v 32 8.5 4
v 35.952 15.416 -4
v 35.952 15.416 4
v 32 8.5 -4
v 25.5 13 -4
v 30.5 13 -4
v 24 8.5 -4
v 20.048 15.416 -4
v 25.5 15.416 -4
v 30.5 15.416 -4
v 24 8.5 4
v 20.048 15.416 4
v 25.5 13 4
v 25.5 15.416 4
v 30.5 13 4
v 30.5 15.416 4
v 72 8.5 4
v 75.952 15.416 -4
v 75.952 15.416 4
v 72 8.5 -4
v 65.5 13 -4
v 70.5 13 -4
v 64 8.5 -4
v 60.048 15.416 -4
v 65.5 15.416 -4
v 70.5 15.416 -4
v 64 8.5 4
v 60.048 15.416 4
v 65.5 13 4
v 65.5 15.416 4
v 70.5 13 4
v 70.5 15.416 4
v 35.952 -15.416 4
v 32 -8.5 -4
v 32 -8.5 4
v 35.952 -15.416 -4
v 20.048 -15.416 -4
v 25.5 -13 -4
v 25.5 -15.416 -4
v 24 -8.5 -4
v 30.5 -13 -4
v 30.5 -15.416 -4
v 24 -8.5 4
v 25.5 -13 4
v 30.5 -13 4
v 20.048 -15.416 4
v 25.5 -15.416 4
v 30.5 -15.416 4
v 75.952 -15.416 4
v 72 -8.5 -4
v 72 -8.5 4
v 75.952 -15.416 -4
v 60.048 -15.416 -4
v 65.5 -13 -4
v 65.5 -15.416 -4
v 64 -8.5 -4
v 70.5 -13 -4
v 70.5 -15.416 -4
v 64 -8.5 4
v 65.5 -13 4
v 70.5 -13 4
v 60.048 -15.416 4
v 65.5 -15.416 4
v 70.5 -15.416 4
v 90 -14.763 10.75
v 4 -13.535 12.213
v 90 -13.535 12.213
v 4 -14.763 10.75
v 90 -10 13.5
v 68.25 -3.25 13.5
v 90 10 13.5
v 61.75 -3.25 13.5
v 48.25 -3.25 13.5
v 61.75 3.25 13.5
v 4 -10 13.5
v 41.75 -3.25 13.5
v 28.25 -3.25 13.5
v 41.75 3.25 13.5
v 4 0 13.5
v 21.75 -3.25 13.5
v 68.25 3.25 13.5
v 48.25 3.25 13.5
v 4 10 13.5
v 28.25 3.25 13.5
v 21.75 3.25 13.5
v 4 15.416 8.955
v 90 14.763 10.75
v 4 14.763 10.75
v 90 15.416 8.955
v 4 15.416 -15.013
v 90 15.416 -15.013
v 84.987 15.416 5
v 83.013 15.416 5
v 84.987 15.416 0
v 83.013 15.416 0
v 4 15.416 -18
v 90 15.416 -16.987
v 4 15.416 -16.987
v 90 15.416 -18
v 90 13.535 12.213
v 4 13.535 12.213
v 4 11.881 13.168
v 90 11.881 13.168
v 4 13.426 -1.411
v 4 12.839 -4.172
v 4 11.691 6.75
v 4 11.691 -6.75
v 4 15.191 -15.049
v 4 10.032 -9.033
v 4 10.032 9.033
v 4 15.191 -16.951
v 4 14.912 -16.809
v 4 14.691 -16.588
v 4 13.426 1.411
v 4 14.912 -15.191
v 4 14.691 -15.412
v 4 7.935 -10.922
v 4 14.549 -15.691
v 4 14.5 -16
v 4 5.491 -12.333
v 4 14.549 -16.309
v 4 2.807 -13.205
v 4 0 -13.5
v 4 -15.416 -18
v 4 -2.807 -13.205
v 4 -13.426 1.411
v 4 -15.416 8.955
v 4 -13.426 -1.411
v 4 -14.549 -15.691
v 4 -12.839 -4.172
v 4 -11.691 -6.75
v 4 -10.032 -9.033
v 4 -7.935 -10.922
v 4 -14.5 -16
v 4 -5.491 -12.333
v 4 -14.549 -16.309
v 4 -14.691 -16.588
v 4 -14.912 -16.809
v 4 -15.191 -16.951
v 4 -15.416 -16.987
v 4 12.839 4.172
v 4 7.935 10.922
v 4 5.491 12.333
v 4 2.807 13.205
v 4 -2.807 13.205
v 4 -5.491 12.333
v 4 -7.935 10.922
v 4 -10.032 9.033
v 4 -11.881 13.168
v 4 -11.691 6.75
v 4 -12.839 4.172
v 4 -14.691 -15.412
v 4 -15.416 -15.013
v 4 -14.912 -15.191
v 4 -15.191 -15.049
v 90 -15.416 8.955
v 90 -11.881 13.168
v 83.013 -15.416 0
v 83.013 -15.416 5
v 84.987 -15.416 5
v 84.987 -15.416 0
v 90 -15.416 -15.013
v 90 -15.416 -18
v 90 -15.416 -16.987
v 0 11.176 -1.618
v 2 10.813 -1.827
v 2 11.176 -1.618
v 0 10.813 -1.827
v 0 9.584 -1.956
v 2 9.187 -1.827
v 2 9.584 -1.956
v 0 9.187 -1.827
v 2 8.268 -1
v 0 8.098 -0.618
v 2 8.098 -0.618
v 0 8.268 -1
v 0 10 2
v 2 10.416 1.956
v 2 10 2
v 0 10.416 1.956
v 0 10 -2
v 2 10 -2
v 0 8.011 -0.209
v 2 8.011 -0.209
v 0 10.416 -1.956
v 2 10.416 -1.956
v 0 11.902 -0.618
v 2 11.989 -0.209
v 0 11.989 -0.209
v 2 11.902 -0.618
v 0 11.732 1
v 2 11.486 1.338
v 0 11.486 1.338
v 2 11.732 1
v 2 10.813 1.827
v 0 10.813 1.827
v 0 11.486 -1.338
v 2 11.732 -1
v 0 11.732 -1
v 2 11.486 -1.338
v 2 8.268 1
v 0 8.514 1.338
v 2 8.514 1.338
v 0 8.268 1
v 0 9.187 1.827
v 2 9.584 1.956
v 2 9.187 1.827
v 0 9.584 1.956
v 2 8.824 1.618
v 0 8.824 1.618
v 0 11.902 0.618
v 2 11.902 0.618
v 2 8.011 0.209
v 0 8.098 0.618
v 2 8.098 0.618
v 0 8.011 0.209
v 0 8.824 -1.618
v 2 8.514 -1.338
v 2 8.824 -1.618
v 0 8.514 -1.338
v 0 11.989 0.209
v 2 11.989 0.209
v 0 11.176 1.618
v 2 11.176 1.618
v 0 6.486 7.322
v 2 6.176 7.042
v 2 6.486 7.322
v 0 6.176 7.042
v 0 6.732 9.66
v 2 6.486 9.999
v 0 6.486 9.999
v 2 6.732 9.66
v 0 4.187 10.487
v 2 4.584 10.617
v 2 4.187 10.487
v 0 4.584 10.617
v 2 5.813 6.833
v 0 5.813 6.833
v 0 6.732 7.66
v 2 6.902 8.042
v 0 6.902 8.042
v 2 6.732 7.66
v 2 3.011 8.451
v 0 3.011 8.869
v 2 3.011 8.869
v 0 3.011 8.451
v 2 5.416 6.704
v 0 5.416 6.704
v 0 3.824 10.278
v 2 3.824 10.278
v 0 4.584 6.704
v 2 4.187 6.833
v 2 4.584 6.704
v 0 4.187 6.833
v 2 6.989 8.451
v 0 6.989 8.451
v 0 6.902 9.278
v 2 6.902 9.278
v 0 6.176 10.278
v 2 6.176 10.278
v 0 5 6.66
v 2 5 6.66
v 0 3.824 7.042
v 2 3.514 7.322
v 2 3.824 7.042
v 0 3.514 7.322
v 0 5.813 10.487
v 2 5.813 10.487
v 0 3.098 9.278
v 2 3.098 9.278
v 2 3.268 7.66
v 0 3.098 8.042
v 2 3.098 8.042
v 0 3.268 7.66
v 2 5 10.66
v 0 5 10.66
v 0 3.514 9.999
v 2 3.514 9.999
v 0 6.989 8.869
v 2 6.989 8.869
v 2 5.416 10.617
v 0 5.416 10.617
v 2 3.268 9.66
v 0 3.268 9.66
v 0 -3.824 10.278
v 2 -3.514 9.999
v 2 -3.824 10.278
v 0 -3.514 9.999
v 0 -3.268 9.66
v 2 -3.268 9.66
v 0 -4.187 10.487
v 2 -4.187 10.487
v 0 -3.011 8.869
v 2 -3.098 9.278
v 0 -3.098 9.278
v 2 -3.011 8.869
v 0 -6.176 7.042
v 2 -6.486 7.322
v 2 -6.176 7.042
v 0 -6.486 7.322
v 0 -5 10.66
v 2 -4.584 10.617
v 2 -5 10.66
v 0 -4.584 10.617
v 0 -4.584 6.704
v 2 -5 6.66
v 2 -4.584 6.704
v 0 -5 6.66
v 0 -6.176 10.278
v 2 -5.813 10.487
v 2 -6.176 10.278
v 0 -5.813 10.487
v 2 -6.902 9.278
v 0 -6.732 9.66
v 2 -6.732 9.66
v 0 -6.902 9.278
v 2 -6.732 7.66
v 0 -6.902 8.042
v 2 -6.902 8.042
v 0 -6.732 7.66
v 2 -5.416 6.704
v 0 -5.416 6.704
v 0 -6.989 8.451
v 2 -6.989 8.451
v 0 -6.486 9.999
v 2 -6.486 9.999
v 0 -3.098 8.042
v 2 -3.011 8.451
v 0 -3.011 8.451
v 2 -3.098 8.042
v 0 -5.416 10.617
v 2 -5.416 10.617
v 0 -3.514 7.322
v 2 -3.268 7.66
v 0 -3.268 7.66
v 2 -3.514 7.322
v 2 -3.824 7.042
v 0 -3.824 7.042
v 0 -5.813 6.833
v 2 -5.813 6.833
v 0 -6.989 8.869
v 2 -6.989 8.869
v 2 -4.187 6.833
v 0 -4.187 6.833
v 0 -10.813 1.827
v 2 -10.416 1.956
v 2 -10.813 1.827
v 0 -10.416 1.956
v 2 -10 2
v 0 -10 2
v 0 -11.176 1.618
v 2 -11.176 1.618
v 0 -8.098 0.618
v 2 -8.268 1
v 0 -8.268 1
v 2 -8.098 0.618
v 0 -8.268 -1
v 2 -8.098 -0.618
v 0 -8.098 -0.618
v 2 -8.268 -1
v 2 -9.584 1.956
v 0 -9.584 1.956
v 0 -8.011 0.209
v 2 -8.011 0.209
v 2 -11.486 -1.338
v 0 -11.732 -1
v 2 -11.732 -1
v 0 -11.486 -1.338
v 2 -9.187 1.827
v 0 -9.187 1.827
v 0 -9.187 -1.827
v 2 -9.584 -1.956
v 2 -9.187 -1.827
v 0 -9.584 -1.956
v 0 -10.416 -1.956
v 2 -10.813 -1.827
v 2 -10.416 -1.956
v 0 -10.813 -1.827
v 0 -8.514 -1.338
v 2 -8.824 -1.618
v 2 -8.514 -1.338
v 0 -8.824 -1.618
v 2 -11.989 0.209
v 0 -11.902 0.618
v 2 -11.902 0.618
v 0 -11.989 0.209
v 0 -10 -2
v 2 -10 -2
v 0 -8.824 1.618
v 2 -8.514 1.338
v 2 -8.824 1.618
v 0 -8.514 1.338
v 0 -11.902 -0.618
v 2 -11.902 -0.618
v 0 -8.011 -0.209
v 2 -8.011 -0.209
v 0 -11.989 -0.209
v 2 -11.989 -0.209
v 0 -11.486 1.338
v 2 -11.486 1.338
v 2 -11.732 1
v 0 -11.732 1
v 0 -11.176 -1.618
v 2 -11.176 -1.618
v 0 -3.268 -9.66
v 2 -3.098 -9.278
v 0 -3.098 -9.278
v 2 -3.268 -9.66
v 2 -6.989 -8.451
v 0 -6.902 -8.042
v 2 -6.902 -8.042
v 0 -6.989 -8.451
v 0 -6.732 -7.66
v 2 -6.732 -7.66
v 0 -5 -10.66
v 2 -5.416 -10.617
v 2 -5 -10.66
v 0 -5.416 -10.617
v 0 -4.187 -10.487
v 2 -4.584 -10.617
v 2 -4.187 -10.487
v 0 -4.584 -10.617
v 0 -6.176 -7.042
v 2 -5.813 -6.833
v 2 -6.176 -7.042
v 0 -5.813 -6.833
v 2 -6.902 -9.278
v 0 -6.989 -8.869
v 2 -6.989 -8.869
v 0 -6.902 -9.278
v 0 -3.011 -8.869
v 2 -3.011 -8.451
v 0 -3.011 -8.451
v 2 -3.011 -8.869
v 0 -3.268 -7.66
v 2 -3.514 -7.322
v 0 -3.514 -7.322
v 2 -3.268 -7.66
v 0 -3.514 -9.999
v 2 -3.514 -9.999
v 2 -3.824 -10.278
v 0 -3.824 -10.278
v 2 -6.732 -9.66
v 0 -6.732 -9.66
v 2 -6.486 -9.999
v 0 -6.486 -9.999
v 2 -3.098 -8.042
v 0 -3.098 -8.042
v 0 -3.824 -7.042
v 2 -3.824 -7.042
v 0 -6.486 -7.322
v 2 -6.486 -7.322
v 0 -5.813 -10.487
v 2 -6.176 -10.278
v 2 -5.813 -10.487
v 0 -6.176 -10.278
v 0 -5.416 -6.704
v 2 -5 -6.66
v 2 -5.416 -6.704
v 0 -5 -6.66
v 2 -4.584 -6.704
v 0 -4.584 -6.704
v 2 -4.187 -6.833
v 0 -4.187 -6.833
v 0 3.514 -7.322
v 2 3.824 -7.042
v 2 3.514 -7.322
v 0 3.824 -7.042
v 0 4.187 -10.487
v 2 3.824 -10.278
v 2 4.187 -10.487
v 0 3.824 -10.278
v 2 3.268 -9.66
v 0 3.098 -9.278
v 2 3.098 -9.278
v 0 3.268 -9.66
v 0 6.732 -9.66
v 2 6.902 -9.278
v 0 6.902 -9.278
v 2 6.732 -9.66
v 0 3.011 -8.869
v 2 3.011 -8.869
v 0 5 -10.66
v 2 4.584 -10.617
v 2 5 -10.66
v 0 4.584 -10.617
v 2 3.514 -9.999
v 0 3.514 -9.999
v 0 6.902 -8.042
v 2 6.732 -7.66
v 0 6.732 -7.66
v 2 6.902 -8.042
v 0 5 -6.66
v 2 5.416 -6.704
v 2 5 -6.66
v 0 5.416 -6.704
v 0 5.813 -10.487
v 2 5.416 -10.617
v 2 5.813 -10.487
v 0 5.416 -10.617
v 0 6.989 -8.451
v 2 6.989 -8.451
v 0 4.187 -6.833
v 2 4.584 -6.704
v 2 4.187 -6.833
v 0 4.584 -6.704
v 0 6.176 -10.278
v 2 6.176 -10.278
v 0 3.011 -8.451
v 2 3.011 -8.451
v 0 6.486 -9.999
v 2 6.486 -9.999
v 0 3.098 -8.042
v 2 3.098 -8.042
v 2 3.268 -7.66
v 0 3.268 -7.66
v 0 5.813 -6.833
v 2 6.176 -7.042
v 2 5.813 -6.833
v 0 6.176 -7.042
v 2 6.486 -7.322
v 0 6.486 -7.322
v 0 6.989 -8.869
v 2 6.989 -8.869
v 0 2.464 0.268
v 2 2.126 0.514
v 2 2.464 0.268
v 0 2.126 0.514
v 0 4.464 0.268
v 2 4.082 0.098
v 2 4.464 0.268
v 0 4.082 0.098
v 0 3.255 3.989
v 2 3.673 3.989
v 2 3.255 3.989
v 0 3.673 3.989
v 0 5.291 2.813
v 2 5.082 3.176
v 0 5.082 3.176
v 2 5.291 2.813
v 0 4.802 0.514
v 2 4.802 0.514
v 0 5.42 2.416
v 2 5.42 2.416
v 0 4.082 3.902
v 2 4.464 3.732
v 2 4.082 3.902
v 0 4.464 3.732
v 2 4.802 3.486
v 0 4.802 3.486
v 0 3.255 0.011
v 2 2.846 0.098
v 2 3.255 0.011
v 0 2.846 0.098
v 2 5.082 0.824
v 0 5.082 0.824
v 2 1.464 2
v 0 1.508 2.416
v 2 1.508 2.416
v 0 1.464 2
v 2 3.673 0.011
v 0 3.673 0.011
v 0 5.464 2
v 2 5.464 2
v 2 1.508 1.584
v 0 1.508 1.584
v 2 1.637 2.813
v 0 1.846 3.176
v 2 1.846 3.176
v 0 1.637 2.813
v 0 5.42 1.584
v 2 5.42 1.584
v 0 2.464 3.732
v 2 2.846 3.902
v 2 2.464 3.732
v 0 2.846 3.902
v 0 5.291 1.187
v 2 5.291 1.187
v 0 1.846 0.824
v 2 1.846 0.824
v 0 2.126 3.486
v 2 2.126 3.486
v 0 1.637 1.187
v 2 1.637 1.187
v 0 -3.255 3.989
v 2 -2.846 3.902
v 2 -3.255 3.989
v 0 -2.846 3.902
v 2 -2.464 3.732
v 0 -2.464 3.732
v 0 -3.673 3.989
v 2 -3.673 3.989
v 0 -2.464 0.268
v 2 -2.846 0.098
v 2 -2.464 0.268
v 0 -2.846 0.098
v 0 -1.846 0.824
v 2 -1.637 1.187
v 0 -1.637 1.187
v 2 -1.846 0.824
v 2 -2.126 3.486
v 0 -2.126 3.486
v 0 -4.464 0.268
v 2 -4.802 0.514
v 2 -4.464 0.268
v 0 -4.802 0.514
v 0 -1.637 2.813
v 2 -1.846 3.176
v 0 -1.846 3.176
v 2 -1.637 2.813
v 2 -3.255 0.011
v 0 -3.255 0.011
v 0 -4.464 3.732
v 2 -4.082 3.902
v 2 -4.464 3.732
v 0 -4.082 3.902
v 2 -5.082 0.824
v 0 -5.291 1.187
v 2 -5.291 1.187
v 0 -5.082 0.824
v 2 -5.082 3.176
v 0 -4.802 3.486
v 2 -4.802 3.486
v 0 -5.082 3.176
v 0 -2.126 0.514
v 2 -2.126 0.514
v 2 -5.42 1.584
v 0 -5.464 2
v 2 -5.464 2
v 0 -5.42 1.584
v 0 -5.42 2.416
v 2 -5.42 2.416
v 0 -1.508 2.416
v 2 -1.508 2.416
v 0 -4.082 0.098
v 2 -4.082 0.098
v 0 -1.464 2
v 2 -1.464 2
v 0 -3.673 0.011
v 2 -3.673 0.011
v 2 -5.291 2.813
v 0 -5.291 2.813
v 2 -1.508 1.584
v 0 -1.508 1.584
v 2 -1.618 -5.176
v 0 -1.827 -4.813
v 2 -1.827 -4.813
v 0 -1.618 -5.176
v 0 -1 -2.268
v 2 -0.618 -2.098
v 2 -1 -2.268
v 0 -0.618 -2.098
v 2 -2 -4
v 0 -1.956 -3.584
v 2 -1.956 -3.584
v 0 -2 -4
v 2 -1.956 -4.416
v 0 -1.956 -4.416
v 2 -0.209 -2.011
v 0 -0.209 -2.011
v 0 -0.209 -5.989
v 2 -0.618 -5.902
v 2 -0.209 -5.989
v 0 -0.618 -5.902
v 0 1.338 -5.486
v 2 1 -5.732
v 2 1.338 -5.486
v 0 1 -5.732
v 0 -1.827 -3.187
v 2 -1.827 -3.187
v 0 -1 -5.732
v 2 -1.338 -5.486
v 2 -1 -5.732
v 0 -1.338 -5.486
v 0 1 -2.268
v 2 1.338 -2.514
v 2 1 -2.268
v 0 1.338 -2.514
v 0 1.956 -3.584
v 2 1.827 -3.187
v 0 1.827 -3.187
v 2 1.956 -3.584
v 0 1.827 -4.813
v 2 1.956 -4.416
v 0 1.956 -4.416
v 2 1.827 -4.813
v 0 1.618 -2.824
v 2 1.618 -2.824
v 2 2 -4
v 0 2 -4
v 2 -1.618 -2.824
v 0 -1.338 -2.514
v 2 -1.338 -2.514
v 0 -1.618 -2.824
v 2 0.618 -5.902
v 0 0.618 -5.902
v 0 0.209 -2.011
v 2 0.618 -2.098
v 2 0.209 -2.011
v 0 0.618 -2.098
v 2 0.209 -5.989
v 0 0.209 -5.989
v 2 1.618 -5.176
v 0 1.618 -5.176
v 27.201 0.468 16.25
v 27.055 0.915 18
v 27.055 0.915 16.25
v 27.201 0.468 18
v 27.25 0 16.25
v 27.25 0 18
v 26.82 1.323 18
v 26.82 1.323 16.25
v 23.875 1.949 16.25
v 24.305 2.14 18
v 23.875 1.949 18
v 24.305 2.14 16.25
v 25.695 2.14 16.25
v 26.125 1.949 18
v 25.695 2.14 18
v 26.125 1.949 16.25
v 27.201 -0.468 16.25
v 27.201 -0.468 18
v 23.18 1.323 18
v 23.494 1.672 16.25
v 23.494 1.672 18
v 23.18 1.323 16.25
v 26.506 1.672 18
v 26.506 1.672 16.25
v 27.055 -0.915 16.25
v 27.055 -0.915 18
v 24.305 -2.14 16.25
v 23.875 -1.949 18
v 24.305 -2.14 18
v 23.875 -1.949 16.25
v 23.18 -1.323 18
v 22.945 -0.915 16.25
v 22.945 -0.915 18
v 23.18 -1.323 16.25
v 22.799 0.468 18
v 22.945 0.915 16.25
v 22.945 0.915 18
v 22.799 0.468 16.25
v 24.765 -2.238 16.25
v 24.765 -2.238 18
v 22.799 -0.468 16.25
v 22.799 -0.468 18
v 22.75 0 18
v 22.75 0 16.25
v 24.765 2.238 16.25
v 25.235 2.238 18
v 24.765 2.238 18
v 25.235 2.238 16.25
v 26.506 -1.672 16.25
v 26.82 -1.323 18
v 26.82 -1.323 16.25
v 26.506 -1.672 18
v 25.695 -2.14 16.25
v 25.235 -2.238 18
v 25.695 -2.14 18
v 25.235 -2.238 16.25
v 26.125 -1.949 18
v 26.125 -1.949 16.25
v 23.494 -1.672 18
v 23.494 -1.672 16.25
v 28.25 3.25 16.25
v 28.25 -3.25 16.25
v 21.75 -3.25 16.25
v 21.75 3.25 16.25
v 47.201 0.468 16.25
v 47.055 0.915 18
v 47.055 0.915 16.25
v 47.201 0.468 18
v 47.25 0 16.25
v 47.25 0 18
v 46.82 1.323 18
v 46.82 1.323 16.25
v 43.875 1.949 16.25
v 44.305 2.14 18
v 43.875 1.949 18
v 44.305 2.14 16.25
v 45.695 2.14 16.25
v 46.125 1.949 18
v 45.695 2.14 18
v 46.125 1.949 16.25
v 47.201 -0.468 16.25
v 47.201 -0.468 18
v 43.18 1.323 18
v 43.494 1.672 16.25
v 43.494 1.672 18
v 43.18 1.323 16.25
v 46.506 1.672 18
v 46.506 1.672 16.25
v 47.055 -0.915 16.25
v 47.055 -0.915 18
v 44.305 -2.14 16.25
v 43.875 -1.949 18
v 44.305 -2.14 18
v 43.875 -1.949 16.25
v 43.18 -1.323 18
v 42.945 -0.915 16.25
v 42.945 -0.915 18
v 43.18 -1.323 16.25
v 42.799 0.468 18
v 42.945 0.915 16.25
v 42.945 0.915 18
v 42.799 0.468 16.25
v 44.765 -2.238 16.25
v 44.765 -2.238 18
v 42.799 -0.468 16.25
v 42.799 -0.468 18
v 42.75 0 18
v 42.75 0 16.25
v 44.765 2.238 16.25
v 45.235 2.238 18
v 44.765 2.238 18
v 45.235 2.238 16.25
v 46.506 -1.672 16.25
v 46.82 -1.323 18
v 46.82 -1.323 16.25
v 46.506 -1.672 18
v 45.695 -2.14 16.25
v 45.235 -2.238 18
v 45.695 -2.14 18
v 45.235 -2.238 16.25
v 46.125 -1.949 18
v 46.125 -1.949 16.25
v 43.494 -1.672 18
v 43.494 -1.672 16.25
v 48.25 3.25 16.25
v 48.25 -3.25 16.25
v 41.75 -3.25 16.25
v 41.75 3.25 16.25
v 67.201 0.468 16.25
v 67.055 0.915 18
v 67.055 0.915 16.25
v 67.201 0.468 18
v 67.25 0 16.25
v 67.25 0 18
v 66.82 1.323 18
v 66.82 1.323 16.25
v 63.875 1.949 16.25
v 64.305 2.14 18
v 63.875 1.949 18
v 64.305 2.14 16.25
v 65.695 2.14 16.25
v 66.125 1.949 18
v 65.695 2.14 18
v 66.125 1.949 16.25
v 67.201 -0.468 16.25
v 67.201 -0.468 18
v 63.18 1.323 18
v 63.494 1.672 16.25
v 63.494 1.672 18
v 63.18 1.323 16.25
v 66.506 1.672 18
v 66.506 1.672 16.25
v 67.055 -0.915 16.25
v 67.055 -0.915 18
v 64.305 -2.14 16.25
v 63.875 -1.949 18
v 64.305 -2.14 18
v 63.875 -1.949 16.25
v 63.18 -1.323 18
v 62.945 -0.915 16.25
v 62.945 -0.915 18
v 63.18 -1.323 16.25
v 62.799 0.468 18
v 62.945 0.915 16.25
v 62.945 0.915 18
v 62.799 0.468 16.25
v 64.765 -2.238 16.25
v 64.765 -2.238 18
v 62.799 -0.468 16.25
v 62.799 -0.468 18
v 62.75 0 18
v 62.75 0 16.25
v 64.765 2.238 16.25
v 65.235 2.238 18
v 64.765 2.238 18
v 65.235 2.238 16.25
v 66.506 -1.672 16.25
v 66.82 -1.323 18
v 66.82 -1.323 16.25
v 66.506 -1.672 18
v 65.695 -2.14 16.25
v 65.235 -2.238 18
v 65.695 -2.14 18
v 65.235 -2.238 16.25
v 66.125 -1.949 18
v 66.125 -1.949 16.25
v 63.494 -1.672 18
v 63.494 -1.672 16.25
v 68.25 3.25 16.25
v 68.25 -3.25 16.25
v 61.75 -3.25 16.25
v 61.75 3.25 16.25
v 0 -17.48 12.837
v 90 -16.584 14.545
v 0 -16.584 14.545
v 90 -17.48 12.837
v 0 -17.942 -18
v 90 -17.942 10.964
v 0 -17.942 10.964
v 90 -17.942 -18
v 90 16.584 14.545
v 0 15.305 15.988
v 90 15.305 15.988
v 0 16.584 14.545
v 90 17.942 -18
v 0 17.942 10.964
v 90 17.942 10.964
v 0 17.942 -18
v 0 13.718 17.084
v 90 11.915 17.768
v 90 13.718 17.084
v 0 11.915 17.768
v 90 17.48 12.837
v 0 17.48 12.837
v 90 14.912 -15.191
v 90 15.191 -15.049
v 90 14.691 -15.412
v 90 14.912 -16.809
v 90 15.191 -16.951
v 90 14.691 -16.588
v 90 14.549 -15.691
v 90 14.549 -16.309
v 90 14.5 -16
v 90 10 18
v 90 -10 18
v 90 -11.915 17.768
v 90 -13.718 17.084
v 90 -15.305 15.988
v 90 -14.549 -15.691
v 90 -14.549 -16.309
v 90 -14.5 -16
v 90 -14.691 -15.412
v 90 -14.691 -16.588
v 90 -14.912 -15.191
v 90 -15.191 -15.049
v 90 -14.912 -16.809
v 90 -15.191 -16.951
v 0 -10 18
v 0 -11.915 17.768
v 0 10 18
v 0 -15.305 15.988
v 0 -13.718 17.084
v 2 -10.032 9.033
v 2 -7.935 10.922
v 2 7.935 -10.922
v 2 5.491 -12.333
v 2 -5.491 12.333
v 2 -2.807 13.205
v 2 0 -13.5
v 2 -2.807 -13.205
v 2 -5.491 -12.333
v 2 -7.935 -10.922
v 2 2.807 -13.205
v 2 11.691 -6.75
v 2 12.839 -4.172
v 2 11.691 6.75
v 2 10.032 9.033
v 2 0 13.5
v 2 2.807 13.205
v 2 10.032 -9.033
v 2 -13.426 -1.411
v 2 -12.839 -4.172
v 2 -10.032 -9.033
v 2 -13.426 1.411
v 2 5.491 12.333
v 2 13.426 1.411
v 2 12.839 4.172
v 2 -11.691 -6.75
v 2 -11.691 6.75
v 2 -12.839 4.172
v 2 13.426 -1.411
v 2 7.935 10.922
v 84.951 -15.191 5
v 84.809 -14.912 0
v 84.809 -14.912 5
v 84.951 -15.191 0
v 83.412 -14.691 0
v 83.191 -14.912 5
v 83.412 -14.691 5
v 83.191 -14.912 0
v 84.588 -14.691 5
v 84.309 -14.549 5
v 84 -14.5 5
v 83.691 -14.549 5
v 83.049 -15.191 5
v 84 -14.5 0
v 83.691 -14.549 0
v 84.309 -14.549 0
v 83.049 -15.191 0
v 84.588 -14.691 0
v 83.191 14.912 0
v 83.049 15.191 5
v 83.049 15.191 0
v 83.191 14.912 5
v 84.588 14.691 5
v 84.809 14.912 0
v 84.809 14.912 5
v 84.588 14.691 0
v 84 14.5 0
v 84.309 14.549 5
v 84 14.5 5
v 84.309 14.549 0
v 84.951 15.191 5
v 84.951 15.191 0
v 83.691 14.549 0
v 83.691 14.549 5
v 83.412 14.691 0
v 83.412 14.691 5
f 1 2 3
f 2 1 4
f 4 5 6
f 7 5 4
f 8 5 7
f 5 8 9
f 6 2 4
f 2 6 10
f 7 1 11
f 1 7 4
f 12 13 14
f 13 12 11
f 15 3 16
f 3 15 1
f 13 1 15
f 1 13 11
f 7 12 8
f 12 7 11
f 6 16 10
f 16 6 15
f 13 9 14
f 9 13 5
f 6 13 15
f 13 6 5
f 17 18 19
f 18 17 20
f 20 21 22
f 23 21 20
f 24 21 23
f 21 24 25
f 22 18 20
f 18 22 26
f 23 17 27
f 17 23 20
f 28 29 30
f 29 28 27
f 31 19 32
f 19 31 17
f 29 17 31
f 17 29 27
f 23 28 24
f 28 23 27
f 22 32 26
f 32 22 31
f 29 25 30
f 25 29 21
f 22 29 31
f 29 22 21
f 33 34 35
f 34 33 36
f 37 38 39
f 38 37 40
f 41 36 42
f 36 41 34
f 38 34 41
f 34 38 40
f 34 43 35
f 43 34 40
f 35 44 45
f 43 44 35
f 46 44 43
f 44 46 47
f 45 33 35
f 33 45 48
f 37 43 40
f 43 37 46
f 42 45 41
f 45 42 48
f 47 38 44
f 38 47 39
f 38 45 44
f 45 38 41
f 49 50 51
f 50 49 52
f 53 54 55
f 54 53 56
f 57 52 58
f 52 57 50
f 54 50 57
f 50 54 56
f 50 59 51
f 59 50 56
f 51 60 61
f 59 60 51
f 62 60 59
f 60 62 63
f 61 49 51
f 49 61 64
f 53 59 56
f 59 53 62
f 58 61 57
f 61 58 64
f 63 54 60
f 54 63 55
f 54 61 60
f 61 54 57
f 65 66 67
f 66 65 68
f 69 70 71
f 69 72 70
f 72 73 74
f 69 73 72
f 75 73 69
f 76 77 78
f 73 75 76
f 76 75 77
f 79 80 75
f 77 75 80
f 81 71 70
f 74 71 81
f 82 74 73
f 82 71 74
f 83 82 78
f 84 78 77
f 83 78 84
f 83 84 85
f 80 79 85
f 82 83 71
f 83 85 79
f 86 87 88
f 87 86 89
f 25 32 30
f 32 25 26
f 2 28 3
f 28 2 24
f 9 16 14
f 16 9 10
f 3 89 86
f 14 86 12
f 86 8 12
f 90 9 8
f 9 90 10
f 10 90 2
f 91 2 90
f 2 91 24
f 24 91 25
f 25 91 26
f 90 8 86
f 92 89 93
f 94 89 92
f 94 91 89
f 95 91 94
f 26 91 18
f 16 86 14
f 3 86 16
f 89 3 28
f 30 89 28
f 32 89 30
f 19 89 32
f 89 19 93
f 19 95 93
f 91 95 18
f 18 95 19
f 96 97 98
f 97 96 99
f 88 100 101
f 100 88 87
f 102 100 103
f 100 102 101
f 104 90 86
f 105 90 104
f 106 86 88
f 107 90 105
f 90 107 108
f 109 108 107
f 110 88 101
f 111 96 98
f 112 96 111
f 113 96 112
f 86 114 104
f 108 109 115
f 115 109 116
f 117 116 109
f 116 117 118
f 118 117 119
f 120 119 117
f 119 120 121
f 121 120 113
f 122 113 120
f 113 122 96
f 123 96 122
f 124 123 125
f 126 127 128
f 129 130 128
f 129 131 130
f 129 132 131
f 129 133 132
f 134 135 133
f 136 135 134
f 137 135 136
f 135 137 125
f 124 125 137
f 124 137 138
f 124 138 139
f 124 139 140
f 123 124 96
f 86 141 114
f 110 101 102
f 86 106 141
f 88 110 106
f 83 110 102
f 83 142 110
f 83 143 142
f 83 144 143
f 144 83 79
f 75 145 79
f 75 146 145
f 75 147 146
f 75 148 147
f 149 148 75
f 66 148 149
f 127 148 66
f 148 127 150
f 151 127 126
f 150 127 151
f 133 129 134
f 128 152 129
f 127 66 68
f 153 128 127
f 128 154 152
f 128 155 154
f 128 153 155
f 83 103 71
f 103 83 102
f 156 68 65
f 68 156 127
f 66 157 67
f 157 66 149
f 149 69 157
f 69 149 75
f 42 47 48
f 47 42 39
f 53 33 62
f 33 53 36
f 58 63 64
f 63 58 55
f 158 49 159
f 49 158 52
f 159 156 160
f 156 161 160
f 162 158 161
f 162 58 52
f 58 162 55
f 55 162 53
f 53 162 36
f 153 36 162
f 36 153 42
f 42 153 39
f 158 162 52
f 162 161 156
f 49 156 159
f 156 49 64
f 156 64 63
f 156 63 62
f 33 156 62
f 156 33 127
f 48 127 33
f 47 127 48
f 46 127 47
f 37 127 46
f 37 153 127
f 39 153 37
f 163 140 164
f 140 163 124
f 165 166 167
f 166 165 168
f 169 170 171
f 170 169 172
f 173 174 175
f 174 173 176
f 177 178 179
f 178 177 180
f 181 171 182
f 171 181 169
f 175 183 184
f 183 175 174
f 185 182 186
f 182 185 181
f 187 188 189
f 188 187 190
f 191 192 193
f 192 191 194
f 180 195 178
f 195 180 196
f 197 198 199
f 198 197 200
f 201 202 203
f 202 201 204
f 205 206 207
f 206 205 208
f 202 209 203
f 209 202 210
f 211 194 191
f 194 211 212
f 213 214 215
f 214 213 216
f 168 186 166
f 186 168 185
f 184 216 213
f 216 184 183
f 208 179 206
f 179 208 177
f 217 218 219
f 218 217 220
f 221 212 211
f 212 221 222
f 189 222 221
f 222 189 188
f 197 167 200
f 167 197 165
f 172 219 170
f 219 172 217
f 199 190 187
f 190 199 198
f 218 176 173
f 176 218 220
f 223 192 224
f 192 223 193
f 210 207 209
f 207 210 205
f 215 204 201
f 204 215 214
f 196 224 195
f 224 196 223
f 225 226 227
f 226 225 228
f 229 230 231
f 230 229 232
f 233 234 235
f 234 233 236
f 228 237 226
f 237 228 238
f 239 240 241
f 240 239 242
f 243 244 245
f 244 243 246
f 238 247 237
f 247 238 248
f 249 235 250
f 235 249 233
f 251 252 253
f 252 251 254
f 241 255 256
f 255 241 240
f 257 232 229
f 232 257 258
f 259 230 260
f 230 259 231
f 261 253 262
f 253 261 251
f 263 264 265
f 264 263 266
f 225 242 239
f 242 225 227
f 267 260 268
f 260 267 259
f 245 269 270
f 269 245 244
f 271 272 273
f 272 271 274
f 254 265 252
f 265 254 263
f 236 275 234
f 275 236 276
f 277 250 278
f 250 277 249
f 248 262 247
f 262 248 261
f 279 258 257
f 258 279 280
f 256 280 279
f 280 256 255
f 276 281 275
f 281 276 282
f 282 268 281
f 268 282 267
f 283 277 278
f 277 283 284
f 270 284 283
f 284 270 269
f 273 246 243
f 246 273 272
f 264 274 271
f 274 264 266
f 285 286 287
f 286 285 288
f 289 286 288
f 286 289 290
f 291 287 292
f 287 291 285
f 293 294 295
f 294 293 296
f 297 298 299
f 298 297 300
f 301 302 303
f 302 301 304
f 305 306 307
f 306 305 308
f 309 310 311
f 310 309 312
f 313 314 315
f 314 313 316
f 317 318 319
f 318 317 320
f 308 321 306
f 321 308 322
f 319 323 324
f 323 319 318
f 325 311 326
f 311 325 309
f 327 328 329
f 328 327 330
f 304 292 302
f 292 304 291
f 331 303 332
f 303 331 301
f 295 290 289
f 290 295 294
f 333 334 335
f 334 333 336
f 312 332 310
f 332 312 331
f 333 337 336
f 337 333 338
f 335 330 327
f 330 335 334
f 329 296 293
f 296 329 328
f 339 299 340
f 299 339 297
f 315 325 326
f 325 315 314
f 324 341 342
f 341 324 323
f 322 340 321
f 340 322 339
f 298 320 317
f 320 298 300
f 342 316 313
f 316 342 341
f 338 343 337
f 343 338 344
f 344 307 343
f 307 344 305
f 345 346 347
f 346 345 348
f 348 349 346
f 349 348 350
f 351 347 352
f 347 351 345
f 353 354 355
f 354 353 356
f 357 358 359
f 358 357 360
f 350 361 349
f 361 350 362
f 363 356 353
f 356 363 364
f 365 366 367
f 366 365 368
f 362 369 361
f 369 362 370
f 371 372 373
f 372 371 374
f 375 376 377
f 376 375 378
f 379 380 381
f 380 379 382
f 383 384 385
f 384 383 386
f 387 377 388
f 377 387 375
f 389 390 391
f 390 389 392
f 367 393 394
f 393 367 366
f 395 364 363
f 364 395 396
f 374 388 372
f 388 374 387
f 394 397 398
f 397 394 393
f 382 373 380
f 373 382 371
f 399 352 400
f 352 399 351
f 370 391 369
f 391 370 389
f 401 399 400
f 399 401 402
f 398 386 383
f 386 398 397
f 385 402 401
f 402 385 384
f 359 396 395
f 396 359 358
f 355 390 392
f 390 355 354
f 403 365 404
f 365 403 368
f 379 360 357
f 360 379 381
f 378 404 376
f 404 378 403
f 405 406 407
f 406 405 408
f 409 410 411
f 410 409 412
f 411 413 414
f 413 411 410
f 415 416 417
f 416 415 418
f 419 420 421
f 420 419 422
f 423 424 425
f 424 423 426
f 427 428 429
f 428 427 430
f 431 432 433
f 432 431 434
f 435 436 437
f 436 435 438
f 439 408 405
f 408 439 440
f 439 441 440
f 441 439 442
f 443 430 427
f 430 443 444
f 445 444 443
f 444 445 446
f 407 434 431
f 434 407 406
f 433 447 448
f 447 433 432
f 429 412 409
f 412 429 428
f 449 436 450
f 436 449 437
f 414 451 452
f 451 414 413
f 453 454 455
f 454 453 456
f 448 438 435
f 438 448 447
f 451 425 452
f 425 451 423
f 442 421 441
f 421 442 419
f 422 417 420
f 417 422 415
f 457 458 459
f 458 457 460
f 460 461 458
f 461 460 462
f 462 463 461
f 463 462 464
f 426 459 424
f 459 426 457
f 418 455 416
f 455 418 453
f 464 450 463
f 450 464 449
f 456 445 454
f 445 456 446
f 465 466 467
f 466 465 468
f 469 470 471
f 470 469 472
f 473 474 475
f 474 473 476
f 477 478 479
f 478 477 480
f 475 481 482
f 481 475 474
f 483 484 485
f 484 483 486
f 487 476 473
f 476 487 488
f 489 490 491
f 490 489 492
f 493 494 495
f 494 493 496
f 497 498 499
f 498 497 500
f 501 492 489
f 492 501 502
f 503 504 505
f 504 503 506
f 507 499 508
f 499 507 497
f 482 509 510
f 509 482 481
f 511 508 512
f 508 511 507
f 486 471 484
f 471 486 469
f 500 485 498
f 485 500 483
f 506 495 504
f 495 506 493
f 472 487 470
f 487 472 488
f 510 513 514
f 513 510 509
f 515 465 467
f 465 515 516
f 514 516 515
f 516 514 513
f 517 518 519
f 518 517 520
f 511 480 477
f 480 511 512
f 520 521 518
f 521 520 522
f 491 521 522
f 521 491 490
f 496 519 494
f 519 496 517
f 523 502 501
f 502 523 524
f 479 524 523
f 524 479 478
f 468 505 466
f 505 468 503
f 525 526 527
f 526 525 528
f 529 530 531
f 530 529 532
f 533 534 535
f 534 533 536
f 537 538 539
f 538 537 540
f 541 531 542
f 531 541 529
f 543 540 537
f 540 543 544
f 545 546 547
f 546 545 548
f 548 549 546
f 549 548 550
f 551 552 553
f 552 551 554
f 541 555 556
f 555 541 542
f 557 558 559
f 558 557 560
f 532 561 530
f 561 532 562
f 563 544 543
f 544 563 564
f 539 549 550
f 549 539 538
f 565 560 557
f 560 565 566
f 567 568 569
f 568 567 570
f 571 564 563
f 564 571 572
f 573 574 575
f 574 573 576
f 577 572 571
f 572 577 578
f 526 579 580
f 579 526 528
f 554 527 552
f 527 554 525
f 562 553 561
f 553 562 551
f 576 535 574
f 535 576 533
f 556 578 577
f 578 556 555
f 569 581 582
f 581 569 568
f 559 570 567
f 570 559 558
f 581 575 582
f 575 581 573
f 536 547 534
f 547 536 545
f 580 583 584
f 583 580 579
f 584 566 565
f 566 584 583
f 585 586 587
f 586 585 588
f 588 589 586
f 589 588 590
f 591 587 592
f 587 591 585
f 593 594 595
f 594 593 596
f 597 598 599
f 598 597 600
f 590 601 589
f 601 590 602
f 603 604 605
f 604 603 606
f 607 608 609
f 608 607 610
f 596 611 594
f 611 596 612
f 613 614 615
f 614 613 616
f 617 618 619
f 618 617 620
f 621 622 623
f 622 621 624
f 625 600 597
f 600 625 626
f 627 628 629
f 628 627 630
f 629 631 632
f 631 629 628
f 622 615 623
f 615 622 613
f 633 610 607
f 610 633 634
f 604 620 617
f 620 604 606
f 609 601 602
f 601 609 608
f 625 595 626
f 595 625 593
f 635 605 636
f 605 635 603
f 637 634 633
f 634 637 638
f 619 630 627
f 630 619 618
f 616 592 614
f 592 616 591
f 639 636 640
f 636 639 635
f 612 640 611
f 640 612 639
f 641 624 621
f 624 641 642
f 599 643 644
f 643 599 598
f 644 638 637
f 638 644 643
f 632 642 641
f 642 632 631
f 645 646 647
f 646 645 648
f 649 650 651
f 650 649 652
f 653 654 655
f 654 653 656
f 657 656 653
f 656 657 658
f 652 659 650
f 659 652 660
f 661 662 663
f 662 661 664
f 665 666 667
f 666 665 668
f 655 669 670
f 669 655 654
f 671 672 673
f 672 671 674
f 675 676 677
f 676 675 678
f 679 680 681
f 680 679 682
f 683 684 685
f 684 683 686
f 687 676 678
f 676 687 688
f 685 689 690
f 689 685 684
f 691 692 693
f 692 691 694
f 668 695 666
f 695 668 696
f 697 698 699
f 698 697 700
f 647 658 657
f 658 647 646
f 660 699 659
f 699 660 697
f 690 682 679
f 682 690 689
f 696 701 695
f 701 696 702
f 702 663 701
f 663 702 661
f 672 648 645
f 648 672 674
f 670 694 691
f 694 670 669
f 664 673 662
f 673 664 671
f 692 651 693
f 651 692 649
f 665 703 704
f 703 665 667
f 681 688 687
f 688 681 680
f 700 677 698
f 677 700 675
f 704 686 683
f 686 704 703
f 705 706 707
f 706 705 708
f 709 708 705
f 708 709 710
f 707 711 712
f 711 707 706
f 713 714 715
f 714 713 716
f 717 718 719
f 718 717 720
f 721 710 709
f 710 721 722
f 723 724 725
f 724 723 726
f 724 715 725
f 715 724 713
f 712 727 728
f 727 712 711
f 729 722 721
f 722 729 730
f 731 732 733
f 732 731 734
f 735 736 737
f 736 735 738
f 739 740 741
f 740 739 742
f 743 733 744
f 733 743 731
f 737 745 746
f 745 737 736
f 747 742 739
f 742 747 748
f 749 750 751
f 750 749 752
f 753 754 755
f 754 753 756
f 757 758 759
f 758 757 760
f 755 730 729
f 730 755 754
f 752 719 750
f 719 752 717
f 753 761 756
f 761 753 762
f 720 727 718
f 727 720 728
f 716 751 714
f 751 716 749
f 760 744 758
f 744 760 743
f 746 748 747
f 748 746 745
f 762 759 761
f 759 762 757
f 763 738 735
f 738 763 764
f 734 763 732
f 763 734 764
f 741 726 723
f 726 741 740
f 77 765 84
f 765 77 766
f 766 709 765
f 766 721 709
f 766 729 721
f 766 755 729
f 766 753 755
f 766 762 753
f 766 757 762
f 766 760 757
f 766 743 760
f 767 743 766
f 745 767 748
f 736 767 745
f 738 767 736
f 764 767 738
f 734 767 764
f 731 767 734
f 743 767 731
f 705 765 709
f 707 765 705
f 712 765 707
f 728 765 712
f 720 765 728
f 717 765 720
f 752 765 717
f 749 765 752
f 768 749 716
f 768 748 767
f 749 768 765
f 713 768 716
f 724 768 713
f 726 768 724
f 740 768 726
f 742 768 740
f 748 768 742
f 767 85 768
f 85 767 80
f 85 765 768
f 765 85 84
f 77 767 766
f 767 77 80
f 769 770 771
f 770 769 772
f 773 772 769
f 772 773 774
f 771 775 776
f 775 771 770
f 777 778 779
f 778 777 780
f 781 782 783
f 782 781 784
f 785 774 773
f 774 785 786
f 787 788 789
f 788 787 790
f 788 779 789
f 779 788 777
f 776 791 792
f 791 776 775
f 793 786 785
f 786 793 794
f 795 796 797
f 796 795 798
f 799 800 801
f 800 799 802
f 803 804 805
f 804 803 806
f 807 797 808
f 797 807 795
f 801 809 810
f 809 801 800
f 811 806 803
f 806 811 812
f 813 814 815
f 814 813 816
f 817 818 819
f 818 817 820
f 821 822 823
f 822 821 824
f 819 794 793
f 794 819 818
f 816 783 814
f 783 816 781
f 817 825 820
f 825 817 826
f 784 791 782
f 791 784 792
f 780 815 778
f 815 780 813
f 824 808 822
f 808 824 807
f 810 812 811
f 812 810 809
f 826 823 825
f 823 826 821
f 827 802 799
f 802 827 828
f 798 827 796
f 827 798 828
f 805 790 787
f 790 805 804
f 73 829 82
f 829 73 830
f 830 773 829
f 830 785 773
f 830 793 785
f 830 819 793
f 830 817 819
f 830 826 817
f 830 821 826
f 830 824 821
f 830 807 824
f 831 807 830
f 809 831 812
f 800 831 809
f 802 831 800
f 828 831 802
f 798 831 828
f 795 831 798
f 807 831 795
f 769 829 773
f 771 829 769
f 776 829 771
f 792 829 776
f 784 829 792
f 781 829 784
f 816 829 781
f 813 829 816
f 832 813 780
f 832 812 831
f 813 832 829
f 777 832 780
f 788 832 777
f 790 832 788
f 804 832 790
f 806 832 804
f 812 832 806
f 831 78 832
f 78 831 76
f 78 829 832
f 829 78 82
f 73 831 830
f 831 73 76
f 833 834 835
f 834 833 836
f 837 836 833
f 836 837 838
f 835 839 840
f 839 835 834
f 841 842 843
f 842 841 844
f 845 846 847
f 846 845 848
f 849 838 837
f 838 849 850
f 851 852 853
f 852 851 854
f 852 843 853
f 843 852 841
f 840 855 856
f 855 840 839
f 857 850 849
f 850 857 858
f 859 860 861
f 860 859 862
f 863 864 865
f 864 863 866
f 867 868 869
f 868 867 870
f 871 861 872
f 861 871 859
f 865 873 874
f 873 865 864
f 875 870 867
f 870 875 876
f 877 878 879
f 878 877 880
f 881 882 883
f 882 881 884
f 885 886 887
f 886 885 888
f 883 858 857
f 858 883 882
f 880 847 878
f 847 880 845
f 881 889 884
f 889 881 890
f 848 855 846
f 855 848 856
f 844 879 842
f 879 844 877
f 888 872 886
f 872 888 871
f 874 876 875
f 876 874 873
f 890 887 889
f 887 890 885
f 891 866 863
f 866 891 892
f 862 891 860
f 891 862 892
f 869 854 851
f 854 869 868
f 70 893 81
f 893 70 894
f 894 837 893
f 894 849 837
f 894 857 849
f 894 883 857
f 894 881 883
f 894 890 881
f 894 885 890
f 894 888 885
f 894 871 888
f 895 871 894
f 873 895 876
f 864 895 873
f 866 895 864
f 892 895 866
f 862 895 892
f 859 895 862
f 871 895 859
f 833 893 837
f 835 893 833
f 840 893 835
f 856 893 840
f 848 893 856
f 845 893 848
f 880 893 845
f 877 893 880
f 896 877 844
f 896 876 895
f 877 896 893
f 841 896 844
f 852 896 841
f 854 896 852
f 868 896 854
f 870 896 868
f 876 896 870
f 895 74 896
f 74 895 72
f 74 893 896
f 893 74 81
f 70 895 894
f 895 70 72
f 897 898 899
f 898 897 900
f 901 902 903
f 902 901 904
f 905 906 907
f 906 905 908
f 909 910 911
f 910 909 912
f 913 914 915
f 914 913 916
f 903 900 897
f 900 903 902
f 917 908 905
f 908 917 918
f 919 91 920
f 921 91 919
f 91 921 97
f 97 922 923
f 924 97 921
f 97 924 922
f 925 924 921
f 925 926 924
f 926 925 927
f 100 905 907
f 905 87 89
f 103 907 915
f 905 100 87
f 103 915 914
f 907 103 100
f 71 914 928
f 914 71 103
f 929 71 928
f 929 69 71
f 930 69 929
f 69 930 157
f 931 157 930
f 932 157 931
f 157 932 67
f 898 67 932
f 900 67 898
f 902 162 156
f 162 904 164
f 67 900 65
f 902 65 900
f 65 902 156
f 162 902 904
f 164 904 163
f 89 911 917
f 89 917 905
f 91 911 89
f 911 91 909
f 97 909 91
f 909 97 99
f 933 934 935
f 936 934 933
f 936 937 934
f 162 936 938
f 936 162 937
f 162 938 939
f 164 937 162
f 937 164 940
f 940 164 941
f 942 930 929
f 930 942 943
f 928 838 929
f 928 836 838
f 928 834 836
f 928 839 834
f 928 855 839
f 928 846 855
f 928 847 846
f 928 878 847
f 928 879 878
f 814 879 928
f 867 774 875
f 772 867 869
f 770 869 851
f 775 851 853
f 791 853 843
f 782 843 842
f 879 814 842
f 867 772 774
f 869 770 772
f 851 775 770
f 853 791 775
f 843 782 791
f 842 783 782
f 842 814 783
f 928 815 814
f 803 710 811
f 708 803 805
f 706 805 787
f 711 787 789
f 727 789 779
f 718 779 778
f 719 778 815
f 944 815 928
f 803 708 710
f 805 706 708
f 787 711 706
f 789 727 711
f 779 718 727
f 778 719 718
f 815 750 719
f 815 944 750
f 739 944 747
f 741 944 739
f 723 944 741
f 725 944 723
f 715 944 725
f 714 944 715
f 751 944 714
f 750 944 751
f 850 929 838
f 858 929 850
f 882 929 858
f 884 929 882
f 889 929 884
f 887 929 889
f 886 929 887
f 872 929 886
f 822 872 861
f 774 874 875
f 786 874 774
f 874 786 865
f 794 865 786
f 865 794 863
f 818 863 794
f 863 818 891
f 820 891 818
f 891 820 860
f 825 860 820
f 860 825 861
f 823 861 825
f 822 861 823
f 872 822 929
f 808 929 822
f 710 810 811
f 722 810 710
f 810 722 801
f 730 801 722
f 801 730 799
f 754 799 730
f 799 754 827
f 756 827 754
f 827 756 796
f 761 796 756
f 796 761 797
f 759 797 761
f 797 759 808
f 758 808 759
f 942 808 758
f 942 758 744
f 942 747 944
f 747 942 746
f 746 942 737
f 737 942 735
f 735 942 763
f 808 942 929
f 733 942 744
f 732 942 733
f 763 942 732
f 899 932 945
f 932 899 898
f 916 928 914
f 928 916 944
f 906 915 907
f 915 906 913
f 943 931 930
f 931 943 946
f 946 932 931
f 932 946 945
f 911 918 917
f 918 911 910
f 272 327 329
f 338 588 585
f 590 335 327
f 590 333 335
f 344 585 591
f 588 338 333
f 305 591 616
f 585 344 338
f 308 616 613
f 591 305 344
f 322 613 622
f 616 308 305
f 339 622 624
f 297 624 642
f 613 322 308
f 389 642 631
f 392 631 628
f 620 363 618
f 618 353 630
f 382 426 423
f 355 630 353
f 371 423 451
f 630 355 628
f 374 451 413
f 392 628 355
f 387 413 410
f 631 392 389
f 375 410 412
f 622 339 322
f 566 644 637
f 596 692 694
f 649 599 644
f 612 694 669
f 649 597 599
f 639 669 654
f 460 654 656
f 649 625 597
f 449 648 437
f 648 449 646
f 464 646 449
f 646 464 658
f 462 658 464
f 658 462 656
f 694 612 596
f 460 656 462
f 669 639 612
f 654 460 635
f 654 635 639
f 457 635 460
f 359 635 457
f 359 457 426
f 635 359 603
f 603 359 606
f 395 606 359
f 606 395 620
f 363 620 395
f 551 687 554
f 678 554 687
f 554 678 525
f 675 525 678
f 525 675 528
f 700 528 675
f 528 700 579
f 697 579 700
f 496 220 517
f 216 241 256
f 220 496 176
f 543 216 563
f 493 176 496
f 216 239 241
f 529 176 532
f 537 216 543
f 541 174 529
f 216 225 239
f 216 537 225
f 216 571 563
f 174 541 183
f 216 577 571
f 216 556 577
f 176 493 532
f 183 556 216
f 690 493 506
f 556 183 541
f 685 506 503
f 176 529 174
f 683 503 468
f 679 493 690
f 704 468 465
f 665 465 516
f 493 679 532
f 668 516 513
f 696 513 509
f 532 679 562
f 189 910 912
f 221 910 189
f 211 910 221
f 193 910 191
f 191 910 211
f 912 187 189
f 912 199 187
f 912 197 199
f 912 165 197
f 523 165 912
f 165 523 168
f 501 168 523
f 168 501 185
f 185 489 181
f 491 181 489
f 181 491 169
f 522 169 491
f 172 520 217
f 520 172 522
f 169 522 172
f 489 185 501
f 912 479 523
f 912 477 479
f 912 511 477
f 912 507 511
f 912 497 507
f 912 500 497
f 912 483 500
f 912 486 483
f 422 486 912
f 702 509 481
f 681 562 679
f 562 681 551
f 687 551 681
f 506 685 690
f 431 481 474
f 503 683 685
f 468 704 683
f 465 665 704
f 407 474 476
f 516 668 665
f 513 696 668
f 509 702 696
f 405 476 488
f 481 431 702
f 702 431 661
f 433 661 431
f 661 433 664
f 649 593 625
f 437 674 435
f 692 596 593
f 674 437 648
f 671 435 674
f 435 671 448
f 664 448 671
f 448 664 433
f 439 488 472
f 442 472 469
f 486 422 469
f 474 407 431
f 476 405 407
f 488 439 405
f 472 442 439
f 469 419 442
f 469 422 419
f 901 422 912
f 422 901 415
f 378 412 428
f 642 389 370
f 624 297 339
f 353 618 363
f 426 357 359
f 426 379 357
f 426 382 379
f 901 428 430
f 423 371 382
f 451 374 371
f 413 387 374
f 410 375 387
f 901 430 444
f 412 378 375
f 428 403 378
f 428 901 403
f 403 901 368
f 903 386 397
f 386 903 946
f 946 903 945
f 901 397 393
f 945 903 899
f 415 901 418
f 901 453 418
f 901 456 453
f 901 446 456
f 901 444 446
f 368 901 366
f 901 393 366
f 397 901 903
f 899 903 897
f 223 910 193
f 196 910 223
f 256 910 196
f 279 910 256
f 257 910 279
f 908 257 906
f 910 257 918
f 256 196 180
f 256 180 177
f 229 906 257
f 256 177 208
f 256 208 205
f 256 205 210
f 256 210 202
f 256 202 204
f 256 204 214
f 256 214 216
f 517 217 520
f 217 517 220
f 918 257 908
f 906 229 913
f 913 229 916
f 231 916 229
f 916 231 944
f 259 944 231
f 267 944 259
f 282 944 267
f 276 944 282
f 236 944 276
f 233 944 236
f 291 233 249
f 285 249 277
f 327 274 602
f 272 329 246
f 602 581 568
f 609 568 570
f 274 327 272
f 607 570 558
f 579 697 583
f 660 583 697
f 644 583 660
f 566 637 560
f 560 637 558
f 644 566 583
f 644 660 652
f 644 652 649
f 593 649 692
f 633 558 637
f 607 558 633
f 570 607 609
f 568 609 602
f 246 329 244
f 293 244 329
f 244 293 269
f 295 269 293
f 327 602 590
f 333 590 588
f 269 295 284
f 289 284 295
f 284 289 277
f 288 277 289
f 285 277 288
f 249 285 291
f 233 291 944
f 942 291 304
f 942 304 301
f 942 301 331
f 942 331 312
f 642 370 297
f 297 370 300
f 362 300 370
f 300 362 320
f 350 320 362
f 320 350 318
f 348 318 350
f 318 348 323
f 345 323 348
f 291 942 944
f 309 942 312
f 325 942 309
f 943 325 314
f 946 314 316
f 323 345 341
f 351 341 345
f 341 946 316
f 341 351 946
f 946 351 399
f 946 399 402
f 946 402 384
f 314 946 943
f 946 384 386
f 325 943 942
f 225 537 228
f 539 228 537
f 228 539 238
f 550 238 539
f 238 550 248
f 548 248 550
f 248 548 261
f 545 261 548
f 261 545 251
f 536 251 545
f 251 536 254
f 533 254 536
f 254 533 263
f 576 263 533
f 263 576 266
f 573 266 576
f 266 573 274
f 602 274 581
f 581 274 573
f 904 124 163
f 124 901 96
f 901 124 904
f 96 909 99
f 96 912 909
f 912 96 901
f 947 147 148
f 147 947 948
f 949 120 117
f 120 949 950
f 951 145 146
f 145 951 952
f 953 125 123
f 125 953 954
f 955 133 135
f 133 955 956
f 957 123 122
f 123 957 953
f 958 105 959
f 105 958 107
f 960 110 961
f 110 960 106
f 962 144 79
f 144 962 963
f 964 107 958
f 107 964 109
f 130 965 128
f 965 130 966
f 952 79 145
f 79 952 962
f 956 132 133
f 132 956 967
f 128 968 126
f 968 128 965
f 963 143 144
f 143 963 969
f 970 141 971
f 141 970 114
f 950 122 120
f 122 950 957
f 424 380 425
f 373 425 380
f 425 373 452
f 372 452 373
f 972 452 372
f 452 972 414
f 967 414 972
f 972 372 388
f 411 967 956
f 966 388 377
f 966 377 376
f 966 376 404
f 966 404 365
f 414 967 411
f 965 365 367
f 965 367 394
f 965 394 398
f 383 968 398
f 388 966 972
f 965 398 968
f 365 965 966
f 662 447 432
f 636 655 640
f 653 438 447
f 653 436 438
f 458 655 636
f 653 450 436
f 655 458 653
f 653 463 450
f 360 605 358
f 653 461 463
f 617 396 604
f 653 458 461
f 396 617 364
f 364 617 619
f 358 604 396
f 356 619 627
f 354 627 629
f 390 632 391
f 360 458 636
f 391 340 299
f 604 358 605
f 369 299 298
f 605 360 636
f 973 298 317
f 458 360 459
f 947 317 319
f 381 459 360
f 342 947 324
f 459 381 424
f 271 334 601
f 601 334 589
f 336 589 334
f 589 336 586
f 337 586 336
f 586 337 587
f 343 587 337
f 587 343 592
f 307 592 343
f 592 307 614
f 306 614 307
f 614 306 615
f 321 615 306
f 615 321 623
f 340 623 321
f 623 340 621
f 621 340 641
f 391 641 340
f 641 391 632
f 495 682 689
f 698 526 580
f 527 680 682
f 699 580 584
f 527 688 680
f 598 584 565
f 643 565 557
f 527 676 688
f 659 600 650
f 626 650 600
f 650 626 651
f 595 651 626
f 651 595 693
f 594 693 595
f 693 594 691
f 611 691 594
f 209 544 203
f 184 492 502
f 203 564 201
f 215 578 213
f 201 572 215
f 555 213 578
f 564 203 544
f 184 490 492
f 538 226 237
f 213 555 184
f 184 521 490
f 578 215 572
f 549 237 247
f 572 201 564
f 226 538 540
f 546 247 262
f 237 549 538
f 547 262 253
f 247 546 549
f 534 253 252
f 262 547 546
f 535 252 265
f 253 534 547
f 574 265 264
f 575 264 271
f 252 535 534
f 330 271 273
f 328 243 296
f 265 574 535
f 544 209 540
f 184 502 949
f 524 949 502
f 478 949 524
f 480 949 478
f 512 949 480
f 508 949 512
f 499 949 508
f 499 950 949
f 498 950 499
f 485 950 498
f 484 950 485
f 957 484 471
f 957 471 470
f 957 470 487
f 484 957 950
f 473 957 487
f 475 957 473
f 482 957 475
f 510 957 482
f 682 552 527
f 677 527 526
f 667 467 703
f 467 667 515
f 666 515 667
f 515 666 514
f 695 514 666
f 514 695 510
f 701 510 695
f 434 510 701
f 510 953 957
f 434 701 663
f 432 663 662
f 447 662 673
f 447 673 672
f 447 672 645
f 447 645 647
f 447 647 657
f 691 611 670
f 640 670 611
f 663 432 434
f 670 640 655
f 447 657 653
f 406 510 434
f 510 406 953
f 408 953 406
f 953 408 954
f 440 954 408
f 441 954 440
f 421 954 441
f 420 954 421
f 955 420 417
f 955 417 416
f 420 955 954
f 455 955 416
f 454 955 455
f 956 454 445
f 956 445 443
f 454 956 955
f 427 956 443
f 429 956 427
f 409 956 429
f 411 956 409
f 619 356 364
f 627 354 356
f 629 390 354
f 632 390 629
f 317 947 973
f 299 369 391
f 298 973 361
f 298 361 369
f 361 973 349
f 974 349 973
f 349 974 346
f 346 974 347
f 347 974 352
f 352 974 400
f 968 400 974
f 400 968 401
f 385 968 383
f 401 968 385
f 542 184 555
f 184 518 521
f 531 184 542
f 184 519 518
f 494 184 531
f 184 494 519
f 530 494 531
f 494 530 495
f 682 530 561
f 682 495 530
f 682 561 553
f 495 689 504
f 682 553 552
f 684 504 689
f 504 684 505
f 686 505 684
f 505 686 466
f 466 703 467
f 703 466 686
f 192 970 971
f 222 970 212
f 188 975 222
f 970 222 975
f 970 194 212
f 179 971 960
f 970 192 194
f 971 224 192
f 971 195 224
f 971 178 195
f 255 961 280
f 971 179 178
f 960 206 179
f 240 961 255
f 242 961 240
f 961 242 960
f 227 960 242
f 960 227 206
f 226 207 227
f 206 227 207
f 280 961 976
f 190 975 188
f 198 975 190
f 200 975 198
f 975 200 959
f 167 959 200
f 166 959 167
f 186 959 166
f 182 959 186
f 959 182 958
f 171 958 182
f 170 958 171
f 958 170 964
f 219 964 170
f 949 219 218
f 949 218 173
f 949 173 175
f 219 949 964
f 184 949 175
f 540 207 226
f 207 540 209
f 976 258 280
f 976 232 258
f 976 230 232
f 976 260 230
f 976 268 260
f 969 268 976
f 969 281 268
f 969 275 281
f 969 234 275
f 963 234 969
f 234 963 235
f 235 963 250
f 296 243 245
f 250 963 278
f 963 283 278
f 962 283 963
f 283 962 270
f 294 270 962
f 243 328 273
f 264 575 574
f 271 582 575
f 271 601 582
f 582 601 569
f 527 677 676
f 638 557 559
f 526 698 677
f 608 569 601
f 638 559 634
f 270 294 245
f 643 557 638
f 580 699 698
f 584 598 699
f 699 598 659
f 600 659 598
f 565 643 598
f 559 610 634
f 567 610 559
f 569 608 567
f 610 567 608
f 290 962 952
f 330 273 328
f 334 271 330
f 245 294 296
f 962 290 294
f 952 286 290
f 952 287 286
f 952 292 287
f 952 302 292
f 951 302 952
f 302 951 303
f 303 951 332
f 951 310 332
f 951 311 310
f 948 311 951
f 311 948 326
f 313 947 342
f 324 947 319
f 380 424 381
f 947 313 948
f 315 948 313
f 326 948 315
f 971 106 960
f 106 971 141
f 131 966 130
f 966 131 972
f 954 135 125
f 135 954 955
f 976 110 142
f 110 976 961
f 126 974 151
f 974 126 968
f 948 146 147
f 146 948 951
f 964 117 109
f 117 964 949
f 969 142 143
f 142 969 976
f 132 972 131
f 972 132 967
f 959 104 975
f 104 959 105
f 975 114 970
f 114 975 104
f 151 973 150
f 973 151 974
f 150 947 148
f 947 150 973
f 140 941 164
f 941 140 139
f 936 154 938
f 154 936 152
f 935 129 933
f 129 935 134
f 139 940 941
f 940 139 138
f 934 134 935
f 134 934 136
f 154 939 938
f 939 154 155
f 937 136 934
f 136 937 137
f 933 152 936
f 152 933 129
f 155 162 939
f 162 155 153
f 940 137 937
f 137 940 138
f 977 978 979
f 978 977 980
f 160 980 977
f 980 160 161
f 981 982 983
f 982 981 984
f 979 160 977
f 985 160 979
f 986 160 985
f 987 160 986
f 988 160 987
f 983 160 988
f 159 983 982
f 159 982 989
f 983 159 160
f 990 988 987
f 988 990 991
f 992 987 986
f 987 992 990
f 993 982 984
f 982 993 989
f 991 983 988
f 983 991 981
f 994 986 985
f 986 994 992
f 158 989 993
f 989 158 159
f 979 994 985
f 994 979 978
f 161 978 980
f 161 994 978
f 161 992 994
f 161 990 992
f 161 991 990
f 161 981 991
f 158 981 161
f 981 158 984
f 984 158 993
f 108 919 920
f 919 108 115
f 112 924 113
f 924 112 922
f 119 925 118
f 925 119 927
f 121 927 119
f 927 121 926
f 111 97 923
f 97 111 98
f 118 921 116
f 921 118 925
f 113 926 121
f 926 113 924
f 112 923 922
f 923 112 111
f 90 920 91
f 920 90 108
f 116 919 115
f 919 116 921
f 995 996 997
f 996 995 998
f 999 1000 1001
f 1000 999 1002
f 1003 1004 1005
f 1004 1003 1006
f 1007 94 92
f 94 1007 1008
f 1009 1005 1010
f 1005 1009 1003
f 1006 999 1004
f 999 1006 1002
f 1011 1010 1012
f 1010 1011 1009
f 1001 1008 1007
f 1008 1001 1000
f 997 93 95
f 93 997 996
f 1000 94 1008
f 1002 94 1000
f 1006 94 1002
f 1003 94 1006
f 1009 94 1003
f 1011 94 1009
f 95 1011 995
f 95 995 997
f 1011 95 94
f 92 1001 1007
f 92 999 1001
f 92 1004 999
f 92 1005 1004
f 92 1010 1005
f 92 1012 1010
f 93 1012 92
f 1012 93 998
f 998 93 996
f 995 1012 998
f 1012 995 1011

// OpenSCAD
module speaker()
{
  rotate([0, 90, 0]) cylinder(d=27, h=4);
}

module battery()
{
  #translate([10, 0, 0]) rotate([0, 90, 0]) cylinder(d=18.6, h=65);
}

//battery();

difference()
{
  hull()
  {
    for(off=[[0, 10, 10], [0, -10, 10], [0, -10, -25], [0, 10, -25]])
    {
      translate(off) rotate([0, 90, 0]) cylinder(d=16, h=90);
    }
  }
  difference()
  {
    hull()
    {
      for(off=[[4, 10, 8], [4, -10, 8], [4, -10, -25], [4, 10, -25]])
      {
        translate(off) rotate([0, 90, 0]) cylinder(d=11, h=87);
      }
    }
    for (m=[0, 1])
    mirror([0, m, 0])
    for (of=[20, 60])
    translate([of, 8.5, 0])
    difference()
    {
      linear_extrude(height=8, center=true) polygon(points=[[0, 7], [16, 7], [12, 0], [4, 0]]);
      translate([8 - 2.5, 4.5, -6]) cube([5, 2.5, 12]);
    }
  }
  translate([0, 0, -68]) cube([200, 100, 100], center=true);
  translate([2, 0, 0]) speaker();
  for(a=[0:60:359]) rotate([a, 0, 0]) translate([-1, 10, 0]) rotate([0, 90, 0]) cylinder(d=4, h=10, $fn=30);
  for(a=[30:120:359]) rotate([a, 0, 0]) translate([-1, 4, 0]) rotate([0, 90, 0]) cylinder(d=4, h=10, $fn=30);
  for(of=[25, 45, 65])
  {
    translate([of, 0, 13])
    {
      cylinder(d=4.5, h=6, $fn=30);
      translate([0, 0, 0]) cube([6.5, 6.5, 6.5], center=true);
    }
  }
}
for (ofs=[-15.5, 15.5])
{
  translate([0, ofs, -16]) rotate([0, 90, 0]) cylinder(d=2, h=90, $fn=20);
  translate([84, ofs, 0]) cylinder(d=2, h=5, $fn=20);
}
